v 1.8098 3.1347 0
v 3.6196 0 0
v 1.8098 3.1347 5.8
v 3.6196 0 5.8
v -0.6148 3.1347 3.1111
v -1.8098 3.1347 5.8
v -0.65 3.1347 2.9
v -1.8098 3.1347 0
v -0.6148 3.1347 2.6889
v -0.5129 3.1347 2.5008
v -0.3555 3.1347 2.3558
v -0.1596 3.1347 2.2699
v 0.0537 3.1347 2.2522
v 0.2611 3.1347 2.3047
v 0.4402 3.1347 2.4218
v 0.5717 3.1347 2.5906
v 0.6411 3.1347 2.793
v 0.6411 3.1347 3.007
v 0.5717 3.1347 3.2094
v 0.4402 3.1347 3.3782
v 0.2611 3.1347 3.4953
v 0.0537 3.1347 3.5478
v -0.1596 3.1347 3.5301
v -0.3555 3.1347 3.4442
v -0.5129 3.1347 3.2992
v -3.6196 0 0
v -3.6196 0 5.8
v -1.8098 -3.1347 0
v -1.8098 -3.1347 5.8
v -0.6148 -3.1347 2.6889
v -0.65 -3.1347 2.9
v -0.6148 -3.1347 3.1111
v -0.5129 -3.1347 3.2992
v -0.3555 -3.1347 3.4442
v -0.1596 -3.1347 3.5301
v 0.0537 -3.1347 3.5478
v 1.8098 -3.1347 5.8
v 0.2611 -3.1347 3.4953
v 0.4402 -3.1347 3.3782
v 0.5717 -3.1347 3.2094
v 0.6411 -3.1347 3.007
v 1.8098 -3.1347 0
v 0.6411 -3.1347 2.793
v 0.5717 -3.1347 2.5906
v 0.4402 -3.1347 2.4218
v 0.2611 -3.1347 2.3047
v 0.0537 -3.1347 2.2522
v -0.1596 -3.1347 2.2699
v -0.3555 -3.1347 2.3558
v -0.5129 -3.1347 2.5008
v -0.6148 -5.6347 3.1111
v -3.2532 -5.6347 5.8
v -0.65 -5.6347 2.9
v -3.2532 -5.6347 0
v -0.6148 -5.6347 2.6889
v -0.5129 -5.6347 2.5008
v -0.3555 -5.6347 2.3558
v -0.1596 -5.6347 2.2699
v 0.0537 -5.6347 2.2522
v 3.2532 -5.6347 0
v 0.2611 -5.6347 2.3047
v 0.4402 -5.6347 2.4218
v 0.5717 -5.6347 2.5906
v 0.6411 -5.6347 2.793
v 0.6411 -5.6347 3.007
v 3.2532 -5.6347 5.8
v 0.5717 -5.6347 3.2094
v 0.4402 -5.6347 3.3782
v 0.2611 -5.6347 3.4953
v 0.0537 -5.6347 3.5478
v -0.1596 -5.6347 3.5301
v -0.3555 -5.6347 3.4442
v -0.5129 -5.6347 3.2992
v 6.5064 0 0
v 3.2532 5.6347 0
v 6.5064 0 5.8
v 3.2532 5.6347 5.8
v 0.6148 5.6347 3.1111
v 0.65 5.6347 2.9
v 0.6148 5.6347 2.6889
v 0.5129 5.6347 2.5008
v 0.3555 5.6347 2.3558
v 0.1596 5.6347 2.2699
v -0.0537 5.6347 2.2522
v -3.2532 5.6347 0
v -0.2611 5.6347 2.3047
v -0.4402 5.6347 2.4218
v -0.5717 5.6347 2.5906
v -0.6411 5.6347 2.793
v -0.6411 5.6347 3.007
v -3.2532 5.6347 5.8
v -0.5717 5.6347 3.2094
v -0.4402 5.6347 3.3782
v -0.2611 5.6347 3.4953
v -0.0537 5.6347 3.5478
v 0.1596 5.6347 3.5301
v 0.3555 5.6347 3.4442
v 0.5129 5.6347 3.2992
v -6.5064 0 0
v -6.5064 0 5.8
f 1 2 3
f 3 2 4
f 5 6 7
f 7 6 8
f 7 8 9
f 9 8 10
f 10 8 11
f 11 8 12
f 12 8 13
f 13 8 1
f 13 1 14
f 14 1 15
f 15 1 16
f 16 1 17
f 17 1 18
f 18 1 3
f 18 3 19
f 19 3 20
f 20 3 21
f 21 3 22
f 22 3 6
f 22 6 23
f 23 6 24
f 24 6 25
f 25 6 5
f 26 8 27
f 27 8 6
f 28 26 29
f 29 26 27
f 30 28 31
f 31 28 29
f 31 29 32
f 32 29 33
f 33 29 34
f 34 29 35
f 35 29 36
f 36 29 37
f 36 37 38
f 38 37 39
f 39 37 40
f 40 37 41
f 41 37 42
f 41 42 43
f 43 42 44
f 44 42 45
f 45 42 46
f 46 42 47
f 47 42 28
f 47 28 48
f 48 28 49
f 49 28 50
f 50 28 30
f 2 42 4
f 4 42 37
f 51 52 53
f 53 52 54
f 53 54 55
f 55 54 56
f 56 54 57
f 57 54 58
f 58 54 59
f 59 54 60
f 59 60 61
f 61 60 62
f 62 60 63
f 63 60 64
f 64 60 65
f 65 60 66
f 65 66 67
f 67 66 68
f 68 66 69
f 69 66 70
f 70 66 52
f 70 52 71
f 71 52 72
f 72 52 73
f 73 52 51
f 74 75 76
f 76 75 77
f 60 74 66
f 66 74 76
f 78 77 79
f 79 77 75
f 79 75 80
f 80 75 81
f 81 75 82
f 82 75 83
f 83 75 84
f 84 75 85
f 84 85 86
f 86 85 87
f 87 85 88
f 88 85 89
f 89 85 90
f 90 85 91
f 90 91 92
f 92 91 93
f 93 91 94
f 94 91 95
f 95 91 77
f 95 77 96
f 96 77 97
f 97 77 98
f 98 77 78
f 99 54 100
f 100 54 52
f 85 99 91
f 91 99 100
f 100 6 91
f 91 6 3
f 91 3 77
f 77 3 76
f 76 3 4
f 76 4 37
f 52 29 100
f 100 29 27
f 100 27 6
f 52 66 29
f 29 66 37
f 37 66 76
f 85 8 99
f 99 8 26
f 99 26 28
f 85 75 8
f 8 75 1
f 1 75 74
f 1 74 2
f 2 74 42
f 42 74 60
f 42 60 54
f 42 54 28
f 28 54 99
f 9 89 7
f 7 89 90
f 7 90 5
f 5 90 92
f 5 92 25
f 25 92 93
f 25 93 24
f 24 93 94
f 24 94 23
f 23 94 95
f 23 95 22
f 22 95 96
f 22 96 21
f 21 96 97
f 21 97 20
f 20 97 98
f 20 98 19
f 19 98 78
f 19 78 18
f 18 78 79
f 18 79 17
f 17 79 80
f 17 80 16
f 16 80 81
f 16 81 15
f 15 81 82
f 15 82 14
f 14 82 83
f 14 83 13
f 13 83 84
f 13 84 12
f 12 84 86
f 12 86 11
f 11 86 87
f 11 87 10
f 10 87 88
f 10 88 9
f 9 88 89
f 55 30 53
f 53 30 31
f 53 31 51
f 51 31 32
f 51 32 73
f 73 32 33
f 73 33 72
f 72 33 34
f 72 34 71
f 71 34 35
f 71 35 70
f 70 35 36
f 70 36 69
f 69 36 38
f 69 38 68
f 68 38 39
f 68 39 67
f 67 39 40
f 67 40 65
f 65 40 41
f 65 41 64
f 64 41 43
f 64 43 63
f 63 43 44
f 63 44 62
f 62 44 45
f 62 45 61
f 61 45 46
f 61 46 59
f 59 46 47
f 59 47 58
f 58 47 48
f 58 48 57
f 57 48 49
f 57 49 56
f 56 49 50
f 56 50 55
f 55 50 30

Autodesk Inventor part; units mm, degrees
ref_plane "YZ Plane" through (0, 0, 0) normal (1, 0, 0) x (0, 1, 0)
ref_plane "XZ Plane" through (0, 0, 0) normal (0, 1, 0) x (-1, 0, 0)
ref_plane "XY Plane" through (0, 0, 0) normal (0, 0, 1) x (1, 0, 0)
sketch "Sketch5" plane through (0, 0, 0) normal (0, 0, 1) x (1, 0, 0)
  line L0 (0, 0) -> (3.1, 0) construction
  circle A0 centre (0, 0) radius 3.1 construction
  line L1 (0, 0) -> (1.55, 2.6847) construction
  line L2 (0, 0) -> (-1.55, 2.6847) construction
  line L3 (0, 0) -> (-3.1, 0) construction
  line L4 (0, 0) -> (-1.55, -2.6847) construction
  line L5 (0, 0) -> (1.55, -2.6847) construction
  line L6 (-1.55, 2.6847) -> (1.55, 2.6847) construction
  line L7 (1.55, 2.6847) -> (3.1, 0) construction
  line L8 (3.1, 0) -> (1.55, -2.6847) construction
  line L9 (-1.55, 2.6847) -> (-3.1, 0) construction
  line L10 (-3.1, 0) -> (-1.55, -2.6847) construction
  line L11 (-1.55, -2.6847) -> (1.55, -2.6847) construction
  line L12 (3.6196, 0) -> (1.8098, 3.1347)
  line L13 (1.8098, 3.1347) -> (-1.8098, 3.1347)
  line L14 (-1.8098, 3.1347) -> (-3.6196, 0)
  line L15 (-3.6196, 0) -> (-1.8098, -3.1347)
  line L16 (-1.8098, -3.1347) -> (1.8098, -3.1347)
  line L17 (1.8098, -3.1347) -> (3.6196, 0)
  line L18 (3.2532, 5.6347) -> (6.5064, 0)
  line L19 (6.5064, 0) -> (3.2532, -5.6347)
  line L20 (3.2532, -5.6347) -> (-3.2532, -5.6347)
  line L21 (-3.2532, -5.6347) -> (-6.5064, 0)
  line L22 (-6.5064, 0) -> (-3.2532, 5.6347)
  line L23 (-3.2532, 5.6347) -> (3.2532, 5.6347)
  dimension "d9" = 3.1
  dimension "d12" = 360
  dimension "d14" = 0.45
  dimension "d15" = 2.5
extrude "Extrusion4" add sketch "Sketch5" along normal blind 5.8
sketch "Sketch6" plane through (-3.2532, 5.6347, 0) normal (0, 1, 0) x (1, 0, 0)
  line L0 (0, -5.8) -> (6.5064, -5.8) projected
  line L1 (3.2532, -5.8) -> (3.2532, 0) construction
  line L2 (0, 0) -> (0, -5.8) projected
  line L3 (0, -2.9) -> (6.5064, -2.9) construction
  line L4 (6.5064, 0) -> (6.5064, -5.8) projected
  circle A0 centre (3.2532, -2.9) radius 0.65
  dimension "d18" = 1.3
extrude "Extrusion5" cut sketch "Sketch6" against normal blind 15
properties part number "Hombro_Ejes"
